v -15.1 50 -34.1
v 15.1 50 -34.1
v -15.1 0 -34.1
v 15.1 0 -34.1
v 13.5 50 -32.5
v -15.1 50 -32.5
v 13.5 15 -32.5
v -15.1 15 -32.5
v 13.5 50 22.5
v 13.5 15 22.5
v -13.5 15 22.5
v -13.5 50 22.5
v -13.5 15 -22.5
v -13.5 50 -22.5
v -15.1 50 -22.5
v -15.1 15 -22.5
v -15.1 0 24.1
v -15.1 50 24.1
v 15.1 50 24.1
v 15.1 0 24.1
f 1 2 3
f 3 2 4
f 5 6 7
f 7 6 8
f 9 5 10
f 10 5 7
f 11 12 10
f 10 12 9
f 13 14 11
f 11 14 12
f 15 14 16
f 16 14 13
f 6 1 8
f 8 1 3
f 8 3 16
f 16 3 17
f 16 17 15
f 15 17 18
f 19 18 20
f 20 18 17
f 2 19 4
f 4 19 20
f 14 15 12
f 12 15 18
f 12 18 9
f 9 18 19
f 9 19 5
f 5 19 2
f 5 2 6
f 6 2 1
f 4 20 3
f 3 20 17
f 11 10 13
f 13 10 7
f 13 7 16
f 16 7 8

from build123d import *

# Parameters (mm, degrees)
BOSS_EXTRUDE2_DEPTH = 50
BOSS_EXTRUDE3_DEPTH = 15


with BuildPart() as part:
    # Sketch1 → Boss-Extrude2 (new body)
    with BuildSketch(Plane(origin=(0, 0, 0), x_dir=(1, 0, 0), z_dir=(0, 1, 0))):
        Polygon((13.5, -22.5), (-13.5, -22.5), (-13.5, 22.5), (-15.1, 22.5), (-15.1, -24.1), (15.1, -24.1), (15.1, 34.1), (-15.1, 34.1), (-15.1, 32.5), (13.5, 32.5), align=None)
    extrude(amount=BOSS_EXTRUDE2_DEPTH)

    # Sketch1<4> → Boss-Extrude3 (add)
    with BuildSketch(Plane(origin=(0, 0, 0), x_dir=(1, 0, 0), z_dir=(0, 1, 0))):
        Polygon((13.5, 32.5), (13.5, -22.5), (-13.5, -22.5), (-13.5, 22.5), (-15.1, 22.5), (-15.1, -24.1), (15.1, -24.1), (15.1, 34.1), (-15.1, 34.1), (-15.1, 32.5), align=None)
        Polygon((-13.5, -22.5), (13.5, -22.5), (13.5, 32.5), (-15.1, 32.5), (-15.1, 22.5), (-13.5, 22.5), align=None)
    extrude(amount=BOSS_EXTRUDE3_DEPTH)


solid = part.part
